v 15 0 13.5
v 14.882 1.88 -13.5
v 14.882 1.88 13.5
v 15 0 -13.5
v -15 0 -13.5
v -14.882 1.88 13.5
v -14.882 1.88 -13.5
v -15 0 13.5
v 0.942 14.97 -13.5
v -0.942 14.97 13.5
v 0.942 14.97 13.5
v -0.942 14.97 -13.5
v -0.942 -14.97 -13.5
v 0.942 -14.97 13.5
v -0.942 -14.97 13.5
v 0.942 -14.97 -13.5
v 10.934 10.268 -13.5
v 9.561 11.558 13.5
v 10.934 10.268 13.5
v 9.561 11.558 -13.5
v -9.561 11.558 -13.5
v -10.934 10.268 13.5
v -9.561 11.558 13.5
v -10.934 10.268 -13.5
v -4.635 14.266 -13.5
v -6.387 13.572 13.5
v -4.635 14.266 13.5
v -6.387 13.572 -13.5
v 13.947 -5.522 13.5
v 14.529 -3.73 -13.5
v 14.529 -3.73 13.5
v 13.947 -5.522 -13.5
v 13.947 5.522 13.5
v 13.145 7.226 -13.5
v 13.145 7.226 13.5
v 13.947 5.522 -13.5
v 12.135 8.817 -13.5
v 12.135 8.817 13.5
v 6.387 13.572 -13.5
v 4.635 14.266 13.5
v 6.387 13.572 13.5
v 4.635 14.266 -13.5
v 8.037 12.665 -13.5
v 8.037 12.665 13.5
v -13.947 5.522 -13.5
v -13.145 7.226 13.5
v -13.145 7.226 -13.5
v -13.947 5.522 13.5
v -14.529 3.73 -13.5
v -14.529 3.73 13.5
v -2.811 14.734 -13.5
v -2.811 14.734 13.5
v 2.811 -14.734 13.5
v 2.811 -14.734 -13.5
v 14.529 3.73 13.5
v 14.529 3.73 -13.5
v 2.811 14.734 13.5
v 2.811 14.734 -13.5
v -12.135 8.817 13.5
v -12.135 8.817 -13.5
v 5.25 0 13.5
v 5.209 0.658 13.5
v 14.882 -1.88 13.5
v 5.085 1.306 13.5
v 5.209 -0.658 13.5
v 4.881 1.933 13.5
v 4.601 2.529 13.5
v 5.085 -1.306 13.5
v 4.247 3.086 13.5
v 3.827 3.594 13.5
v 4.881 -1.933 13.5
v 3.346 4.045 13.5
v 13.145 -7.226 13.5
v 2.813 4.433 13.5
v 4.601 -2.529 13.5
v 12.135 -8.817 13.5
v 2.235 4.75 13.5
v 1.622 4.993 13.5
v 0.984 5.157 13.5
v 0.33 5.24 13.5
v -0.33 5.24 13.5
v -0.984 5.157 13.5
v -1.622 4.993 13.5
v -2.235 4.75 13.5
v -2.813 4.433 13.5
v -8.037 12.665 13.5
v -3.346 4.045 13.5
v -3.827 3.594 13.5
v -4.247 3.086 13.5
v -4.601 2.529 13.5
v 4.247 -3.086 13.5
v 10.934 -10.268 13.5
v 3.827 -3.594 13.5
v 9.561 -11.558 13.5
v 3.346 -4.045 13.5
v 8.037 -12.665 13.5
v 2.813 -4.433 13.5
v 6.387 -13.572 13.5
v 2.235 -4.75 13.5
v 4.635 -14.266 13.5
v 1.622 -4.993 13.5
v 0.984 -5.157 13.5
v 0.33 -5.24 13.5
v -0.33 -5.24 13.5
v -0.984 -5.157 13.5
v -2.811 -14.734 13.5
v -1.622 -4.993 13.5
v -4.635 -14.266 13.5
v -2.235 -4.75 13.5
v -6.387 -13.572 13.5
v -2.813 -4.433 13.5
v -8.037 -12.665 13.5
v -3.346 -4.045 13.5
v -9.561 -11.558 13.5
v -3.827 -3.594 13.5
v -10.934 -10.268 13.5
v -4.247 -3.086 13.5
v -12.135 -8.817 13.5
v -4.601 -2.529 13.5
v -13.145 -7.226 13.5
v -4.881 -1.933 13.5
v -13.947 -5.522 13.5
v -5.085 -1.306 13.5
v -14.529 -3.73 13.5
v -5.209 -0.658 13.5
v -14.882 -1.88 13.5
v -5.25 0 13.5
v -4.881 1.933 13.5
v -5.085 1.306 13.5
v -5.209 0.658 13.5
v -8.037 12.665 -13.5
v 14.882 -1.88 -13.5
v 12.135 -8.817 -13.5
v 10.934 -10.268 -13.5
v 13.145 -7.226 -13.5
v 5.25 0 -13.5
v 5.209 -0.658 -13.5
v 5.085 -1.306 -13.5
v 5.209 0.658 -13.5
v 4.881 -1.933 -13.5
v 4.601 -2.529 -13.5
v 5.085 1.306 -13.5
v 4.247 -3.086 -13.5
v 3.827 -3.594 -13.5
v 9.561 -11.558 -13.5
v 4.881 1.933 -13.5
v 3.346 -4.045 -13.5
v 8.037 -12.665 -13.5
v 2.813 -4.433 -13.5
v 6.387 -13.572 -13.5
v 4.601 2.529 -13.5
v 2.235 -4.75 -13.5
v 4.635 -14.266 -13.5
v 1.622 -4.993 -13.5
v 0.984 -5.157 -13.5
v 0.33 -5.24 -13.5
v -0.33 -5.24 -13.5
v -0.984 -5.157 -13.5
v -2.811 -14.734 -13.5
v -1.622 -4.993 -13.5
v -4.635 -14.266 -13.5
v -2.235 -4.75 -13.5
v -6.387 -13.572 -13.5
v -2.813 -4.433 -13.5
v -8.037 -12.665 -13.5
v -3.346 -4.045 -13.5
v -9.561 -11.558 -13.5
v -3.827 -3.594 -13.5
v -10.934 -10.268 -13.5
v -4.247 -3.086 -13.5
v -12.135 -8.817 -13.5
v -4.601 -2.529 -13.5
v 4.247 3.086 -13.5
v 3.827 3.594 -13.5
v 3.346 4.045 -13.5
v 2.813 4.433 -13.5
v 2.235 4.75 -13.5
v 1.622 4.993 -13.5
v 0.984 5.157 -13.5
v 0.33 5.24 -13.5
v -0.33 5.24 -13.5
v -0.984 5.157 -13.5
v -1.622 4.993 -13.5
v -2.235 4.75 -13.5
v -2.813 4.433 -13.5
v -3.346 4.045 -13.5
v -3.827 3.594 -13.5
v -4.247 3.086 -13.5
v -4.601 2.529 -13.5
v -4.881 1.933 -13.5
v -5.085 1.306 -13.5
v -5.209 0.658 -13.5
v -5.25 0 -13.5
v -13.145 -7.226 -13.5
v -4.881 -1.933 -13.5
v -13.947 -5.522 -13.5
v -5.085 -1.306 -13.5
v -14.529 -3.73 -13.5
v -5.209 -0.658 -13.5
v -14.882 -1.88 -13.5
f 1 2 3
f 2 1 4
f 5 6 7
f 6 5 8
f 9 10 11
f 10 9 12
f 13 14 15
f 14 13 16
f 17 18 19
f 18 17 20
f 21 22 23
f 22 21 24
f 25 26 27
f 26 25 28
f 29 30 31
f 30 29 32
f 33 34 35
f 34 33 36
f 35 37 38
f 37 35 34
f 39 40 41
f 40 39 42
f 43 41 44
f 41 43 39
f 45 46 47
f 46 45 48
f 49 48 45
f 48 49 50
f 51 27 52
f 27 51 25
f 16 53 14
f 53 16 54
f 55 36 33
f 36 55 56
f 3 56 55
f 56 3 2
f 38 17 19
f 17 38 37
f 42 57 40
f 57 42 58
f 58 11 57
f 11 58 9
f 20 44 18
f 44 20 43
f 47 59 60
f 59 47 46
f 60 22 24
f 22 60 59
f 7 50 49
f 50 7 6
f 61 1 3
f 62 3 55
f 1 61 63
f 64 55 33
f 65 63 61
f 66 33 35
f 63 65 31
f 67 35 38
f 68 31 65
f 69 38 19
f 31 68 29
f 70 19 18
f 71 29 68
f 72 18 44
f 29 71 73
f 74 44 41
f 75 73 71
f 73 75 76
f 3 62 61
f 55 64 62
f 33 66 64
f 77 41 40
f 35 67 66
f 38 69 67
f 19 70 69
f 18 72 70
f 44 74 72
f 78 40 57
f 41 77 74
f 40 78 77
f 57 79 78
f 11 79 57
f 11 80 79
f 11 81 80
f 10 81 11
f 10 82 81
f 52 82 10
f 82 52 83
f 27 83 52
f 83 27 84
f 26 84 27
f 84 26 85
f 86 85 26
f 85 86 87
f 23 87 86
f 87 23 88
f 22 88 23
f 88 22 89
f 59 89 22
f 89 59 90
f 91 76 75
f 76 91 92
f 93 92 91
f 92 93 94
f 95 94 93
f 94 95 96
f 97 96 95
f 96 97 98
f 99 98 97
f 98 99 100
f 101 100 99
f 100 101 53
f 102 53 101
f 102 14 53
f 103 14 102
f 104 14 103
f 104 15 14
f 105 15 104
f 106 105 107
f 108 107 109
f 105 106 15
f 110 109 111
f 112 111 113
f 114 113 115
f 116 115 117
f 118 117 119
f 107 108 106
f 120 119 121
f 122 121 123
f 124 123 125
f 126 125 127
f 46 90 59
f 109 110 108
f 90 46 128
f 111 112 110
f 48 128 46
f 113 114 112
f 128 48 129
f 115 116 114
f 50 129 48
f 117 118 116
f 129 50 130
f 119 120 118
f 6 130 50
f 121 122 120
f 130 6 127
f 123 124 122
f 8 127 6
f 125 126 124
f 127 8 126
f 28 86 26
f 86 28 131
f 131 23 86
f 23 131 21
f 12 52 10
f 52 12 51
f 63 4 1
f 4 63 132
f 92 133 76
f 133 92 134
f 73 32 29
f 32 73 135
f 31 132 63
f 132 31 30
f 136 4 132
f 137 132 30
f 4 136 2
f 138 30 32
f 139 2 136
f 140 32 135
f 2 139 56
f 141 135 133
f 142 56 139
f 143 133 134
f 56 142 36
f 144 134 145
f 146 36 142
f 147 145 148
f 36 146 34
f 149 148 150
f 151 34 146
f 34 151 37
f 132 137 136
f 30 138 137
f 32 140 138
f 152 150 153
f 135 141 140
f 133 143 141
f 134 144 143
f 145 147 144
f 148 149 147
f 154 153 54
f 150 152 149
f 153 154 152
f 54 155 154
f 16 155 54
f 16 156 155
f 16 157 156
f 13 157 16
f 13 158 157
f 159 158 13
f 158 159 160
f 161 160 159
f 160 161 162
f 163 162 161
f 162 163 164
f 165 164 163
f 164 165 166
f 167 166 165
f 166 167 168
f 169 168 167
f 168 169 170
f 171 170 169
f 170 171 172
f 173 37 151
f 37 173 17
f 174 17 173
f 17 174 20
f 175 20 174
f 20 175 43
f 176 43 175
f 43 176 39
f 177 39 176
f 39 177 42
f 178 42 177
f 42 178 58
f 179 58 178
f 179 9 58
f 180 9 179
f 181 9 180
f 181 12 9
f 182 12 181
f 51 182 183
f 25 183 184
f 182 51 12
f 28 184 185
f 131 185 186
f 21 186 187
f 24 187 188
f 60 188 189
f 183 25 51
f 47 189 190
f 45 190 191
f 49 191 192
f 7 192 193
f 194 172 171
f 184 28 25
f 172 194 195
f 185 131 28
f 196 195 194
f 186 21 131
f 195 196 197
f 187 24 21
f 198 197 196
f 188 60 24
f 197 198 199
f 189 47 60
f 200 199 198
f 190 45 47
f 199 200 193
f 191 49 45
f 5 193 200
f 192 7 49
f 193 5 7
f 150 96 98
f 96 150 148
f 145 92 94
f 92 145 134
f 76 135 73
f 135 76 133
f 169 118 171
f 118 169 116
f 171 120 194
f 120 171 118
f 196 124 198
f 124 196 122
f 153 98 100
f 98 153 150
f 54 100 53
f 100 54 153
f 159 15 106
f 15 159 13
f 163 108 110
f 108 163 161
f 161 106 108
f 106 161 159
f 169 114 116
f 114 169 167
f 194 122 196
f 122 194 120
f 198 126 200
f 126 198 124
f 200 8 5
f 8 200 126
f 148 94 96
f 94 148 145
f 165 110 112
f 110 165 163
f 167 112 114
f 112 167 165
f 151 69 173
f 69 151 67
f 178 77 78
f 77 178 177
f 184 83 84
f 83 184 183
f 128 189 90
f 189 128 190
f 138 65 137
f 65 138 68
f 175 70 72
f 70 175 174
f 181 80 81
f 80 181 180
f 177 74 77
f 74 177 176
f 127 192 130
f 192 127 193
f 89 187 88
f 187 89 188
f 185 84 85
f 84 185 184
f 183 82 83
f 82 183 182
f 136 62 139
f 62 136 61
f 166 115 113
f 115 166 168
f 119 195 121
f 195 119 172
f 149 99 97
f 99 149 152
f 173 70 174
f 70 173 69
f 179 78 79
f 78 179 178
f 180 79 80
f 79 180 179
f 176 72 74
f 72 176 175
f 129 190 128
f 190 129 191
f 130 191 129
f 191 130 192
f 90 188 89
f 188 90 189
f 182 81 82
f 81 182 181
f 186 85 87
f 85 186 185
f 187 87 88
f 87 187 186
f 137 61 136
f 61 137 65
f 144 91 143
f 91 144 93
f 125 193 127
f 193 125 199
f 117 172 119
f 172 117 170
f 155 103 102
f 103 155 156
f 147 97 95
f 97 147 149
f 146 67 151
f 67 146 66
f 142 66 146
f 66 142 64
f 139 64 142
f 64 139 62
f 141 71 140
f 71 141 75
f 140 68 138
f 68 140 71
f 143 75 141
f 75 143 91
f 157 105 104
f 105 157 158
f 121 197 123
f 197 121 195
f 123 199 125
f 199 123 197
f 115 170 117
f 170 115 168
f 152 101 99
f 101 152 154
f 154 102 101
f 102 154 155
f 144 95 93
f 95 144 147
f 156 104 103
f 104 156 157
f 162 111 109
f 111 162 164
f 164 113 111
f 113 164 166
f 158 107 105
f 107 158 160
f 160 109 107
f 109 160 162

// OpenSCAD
$fn = 50;


difference() {
	union() {
		translate(v = [0, 0, -13.5000000000]) {
			cylinder(h = 27, r = 15.0000000000);
		}
	}
	union() {
		translate(v = [0, 0, -100.0000000000]) {
			cylinder(h = 200, r = 5.2500000000);
		}
	}
}
